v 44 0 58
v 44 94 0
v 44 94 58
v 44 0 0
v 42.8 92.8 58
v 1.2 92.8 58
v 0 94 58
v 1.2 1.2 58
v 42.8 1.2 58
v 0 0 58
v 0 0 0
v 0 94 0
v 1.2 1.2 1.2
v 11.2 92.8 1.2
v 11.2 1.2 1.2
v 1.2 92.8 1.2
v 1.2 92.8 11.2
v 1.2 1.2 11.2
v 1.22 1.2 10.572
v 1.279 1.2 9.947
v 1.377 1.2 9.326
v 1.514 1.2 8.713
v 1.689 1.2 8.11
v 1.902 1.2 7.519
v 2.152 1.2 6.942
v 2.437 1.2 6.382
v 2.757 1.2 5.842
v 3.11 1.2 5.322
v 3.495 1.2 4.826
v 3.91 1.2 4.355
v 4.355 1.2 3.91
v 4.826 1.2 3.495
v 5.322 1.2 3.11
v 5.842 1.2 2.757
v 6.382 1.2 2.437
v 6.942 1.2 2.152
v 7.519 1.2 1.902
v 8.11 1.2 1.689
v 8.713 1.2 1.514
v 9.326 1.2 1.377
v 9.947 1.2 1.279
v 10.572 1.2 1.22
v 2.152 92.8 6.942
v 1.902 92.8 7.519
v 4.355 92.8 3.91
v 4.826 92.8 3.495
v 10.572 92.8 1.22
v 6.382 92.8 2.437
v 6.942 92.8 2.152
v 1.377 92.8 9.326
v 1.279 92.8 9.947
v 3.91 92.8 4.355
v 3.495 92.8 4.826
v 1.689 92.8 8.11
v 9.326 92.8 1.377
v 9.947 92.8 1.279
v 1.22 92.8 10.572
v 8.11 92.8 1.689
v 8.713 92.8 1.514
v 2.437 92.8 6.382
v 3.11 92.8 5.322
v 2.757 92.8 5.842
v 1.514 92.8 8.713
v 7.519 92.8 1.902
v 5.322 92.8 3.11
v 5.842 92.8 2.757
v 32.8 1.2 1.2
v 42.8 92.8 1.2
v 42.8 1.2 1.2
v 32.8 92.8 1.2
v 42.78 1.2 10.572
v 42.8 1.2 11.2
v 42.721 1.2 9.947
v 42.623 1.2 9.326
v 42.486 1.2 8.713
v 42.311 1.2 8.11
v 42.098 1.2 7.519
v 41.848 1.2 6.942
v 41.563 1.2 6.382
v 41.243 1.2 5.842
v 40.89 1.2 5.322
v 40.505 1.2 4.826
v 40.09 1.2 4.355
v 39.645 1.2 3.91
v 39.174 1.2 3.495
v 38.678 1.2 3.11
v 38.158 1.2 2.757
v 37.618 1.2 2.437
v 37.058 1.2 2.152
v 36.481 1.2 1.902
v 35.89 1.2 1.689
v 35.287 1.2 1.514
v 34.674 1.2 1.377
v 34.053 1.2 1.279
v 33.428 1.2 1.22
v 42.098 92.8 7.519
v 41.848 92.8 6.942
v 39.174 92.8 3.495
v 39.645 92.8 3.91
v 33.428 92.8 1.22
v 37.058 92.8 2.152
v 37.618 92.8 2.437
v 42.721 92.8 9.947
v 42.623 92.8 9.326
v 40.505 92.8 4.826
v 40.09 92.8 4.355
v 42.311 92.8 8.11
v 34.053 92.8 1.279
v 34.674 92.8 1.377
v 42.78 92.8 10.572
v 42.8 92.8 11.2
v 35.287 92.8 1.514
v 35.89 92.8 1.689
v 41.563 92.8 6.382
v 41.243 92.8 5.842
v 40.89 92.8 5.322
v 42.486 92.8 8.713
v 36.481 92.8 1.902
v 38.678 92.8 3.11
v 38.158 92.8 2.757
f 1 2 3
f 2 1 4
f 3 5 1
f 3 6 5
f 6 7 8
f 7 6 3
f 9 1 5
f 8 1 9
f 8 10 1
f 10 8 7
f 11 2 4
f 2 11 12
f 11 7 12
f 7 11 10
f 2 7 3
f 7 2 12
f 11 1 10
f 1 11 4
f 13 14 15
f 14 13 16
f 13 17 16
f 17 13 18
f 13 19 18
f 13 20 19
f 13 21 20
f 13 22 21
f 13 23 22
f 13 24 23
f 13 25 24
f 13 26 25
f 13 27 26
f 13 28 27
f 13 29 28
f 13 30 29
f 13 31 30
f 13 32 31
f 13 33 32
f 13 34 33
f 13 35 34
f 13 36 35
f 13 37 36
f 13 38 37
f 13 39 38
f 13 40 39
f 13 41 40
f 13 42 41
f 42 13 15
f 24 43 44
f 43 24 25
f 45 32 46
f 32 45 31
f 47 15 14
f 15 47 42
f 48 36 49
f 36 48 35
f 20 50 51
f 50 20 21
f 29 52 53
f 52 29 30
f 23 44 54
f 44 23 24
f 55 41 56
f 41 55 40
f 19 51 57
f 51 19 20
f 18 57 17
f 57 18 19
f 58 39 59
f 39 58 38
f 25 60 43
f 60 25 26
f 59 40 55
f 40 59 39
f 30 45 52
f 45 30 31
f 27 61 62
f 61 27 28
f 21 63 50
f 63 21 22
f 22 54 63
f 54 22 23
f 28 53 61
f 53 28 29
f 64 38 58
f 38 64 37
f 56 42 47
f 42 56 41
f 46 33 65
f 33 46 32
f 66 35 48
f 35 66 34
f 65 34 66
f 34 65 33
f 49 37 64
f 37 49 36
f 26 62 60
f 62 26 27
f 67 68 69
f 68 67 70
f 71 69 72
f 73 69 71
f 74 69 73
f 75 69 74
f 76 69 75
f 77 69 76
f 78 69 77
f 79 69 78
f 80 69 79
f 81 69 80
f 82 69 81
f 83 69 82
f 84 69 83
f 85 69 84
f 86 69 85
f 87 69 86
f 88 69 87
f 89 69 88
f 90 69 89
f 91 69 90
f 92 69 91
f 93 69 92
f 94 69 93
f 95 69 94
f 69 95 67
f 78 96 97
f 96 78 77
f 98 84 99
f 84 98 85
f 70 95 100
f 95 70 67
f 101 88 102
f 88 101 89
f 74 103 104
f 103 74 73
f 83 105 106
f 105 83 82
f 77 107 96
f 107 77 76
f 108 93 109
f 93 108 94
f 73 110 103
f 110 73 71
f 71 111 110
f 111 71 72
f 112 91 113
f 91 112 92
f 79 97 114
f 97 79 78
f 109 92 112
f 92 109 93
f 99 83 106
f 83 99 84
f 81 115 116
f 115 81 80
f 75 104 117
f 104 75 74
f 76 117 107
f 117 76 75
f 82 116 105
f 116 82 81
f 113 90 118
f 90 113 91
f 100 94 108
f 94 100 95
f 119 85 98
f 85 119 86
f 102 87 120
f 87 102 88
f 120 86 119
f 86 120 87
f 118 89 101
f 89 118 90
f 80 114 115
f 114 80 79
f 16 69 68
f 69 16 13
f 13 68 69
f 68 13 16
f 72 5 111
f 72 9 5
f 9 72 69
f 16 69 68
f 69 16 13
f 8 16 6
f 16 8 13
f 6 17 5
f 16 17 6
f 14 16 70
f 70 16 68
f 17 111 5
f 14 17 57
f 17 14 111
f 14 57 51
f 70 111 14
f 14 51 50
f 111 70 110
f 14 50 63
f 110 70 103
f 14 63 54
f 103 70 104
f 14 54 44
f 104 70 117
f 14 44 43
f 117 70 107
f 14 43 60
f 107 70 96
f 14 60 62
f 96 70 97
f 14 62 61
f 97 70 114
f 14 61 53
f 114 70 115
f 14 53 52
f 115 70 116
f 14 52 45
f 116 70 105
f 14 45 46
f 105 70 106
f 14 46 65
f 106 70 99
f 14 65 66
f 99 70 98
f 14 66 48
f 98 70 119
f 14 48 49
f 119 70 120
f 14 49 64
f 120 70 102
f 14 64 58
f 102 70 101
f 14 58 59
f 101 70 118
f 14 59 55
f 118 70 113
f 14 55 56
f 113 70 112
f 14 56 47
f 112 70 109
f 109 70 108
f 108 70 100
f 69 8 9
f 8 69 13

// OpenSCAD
include <boardgame_insert_toolkit_lib.2.scad>;

// determines whether lids are output.
g_b_print_lid = true;

// determines whether boxes are output.
g_b_print_box = true;

// Focus on one box
g_isolated_print_box = "";

// Used to visualize how all of the boxes fit together.
g_b_visualization = false;

// this is the outer wall thickness.
//Default = 1.5mm
g_wall_thickness = 1.2;

// The tolerance value is extra space put between planes of the lid and box that fit together.
// Increase the tolerance to loosen the fit and decrease it to tighten it.
//
// Note that the tolerance is applied exclusively to the lid.
// So if the lid is too tight or too loose, change this value ( up for looser fit, down for tighter fit ) and
// you only need to reprint the lid.
//
// The exception is the stackable box, where the bottom of the box is the lid of the box below,
// in which case the tolerance also affects that box bottom.
//
g_tolerance = 0.15;

// This adjusts the position of the lid detents downward.
// The larger the value, the bigger the gap between the lid and the box.
g_tolerance_detents_pos = 0.1;

aw_box_x = 44.0; // 284 / 2
aw_box_y = 94.0; //
aw_box_z = 58.0;

aw_compartment_size_x = (aw_box_x - 2 * g_wall_thickness);
aw_compartment_size_y = (aw_box_y - 2 * g_wall_thickness);

data =
  [
    [
      "Gugong Extras Box",
      [
        [ BOX_SIZE_XYZ, [aw_box_x, aw_box_y, aw_box_z] ],
        [ BOX_NO_LID_B, t],
        [
          BOX_COMPONENT,
          [
            [ CMP_SHAPE, FILLET ],
            [ CMP_NUM_COMPARTMENTS_XY, [1, 1] ],
            [
              CMP_COMPARTMENT_SIZE_XYZ,
              [
                aw_compartment_size_x,
                aw_compartment_size_y,
                aw_box_z - 1 * g_wall_thickness
              ]
            ],
            [ POSITION_XY, [ CENTER, CENTER ] ],
          ]
        ],
      ]
    ]
  ];


MakeAll();
